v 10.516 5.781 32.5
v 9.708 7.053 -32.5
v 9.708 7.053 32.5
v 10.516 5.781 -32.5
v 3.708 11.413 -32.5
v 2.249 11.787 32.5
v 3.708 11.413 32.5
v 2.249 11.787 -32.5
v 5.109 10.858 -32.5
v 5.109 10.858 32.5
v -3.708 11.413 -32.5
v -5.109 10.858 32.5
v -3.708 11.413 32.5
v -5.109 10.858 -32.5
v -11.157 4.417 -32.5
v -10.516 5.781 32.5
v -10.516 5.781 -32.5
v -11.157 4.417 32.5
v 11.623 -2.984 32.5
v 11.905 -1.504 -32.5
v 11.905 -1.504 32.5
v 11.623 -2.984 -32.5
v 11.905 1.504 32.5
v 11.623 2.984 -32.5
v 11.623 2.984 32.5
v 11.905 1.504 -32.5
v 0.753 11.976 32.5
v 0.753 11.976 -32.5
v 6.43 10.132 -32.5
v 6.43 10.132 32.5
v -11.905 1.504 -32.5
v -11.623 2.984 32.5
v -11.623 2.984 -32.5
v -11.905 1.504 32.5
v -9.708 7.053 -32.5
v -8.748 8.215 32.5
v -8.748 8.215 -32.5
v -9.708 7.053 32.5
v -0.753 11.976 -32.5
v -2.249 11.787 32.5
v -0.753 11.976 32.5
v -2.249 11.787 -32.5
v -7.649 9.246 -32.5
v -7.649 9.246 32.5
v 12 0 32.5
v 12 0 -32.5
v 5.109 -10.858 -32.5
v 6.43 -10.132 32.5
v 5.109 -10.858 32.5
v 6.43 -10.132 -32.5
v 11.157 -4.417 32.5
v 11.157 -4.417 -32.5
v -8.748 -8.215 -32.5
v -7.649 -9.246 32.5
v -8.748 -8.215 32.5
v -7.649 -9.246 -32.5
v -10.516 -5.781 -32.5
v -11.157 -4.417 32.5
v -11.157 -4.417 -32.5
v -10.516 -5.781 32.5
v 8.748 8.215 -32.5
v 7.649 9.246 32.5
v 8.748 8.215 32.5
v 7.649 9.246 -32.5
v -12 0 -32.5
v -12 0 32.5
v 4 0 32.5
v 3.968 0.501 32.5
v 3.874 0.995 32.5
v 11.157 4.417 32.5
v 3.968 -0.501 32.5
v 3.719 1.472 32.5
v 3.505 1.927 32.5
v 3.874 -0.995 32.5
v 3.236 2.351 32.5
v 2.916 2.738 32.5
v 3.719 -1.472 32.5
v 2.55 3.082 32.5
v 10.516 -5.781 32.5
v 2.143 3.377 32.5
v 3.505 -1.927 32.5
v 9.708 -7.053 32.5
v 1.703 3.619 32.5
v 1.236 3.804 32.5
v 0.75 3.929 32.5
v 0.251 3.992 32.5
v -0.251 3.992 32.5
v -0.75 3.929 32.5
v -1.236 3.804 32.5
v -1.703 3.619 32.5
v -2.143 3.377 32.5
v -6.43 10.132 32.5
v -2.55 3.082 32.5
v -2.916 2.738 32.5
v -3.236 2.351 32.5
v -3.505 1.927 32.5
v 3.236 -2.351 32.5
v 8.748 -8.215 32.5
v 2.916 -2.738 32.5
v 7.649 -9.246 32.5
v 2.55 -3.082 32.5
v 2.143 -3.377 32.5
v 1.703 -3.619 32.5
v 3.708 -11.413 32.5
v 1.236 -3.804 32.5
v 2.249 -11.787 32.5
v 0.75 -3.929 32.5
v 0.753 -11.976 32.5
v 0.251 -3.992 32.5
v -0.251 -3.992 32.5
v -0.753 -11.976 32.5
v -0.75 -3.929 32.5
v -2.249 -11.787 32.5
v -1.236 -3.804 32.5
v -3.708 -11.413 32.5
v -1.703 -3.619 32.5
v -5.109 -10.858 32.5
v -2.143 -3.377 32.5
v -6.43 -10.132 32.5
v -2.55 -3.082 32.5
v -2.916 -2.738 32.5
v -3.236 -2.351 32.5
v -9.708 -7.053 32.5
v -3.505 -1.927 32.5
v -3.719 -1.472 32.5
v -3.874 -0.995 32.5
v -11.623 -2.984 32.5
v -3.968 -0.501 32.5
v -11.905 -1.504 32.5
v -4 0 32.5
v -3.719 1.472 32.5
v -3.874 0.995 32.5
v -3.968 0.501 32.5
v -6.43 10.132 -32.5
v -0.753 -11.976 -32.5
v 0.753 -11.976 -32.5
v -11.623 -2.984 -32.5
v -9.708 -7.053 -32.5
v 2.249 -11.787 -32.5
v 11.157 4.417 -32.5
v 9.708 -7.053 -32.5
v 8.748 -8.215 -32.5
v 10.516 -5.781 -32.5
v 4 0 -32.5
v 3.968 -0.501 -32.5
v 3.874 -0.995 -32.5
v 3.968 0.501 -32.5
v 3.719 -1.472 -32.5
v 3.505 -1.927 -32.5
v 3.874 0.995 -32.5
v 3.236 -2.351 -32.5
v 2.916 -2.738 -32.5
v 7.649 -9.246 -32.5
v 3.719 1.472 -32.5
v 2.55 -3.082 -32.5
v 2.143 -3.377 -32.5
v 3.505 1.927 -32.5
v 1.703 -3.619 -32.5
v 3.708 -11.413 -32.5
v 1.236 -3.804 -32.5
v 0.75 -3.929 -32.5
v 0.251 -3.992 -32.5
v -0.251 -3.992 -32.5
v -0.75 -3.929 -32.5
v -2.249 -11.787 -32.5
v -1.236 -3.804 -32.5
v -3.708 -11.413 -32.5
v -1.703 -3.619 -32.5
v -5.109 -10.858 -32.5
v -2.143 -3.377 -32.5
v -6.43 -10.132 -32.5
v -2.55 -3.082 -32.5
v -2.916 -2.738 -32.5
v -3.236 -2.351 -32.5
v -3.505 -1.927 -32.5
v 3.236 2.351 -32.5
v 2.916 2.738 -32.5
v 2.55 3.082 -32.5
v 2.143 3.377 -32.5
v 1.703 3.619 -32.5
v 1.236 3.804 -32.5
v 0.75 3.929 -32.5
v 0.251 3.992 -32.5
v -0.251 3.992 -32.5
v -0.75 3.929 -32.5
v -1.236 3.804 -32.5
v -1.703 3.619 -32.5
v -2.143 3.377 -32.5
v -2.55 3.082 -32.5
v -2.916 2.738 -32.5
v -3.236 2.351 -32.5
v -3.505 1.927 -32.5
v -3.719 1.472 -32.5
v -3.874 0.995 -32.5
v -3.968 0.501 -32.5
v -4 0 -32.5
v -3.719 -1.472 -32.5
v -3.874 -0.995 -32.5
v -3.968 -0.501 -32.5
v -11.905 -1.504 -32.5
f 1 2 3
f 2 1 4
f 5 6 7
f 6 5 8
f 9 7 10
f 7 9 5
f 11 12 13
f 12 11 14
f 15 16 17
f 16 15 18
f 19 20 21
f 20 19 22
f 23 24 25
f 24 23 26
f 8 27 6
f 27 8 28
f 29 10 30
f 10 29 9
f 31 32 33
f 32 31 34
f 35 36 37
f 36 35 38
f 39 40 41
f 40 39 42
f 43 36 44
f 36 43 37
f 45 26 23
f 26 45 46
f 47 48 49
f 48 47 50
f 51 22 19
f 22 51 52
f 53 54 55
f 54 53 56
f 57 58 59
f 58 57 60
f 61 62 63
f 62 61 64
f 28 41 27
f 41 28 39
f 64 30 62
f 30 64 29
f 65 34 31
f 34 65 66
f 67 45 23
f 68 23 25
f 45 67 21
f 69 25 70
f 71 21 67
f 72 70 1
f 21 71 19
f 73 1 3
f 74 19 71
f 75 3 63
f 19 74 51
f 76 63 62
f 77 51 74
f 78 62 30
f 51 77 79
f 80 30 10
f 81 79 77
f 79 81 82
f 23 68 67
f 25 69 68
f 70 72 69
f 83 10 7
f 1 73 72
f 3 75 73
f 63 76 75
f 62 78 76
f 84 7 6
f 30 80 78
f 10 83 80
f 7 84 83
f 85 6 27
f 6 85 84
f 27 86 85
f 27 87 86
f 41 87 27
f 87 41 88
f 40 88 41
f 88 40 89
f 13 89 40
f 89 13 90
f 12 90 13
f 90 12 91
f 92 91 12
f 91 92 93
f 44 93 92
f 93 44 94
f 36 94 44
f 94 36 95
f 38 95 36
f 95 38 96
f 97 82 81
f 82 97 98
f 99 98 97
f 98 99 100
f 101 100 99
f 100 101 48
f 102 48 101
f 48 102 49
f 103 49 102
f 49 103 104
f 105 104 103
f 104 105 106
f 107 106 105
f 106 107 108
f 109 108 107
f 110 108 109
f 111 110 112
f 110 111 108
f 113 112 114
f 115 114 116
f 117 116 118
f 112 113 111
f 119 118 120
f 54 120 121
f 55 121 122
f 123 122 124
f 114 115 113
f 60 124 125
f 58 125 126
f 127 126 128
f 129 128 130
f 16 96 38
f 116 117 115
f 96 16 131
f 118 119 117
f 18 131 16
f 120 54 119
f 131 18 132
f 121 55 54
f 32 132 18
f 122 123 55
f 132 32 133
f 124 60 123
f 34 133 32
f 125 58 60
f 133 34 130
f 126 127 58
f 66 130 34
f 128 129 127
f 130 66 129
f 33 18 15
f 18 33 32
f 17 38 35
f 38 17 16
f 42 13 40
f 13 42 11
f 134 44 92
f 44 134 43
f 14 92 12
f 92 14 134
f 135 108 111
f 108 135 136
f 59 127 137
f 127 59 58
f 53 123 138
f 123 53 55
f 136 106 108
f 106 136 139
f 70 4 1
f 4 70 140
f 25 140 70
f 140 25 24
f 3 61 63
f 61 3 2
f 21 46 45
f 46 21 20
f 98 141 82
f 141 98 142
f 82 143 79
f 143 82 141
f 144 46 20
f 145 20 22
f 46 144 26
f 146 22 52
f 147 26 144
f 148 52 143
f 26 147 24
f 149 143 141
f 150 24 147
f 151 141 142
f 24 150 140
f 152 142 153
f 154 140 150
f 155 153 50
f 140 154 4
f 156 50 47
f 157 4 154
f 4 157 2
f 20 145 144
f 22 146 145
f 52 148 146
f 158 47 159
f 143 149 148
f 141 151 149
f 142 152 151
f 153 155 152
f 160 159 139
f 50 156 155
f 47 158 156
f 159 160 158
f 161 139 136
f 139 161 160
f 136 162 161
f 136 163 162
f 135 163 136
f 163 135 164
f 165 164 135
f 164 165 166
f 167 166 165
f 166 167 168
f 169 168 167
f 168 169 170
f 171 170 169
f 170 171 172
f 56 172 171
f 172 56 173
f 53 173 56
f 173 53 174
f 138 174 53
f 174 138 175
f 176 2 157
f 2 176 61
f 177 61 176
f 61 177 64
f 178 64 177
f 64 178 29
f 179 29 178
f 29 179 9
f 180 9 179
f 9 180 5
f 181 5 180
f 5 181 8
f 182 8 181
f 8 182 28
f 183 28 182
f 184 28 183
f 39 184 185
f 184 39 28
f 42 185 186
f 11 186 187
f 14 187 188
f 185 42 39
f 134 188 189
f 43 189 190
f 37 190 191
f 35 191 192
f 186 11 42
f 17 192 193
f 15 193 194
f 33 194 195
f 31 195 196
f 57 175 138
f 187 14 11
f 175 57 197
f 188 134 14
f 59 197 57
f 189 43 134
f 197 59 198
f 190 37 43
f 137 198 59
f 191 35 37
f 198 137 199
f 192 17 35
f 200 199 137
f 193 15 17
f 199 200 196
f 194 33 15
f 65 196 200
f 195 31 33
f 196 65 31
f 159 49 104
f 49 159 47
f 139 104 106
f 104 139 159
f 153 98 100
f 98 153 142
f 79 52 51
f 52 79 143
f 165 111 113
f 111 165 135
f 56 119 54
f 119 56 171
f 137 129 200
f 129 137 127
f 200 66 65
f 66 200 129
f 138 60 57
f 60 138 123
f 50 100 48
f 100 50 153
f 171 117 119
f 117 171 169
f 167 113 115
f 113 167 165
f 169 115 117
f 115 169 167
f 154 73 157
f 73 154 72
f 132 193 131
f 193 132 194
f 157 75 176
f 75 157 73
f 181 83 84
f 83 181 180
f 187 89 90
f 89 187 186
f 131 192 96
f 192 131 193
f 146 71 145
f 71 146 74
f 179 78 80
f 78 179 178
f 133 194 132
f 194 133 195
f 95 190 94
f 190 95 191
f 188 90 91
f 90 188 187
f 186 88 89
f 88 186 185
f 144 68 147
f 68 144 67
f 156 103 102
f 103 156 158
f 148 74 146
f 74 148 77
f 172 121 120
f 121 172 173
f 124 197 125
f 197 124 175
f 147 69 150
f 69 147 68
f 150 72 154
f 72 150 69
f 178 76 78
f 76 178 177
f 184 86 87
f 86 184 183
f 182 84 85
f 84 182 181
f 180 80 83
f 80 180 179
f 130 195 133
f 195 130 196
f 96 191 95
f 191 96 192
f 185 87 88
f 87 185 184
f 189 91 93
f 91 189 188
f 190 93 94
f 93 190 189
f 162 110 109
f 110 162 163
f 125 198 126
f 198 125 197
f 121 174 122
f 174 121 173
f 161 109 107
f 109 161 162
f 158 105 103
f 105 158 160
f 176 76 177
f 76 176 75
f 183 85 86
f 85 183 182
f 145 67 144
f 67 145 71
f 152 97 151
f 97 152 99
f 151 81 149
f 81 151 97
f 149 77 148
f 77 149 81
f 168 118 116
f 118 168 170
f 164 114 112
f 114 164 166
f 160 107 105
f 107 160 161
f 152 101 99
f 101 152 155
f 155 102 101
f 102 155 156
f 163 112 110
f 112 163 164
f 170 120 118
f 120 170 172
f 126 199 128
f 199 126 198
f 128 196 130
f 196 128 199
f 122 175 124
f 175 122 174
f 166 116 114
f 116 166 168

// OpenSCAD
$fn = 50;


difference() {
	union() {
		translate(v = [0, 0, -32.5000000000]) {
			cylinder(h = 65, r = 12.0000000000);
		}
	}
	union() {
		translate(v = [0, 0, -100.0000000000]) {
			cylinder(h = 200, r = 4);
		}
	}
}
